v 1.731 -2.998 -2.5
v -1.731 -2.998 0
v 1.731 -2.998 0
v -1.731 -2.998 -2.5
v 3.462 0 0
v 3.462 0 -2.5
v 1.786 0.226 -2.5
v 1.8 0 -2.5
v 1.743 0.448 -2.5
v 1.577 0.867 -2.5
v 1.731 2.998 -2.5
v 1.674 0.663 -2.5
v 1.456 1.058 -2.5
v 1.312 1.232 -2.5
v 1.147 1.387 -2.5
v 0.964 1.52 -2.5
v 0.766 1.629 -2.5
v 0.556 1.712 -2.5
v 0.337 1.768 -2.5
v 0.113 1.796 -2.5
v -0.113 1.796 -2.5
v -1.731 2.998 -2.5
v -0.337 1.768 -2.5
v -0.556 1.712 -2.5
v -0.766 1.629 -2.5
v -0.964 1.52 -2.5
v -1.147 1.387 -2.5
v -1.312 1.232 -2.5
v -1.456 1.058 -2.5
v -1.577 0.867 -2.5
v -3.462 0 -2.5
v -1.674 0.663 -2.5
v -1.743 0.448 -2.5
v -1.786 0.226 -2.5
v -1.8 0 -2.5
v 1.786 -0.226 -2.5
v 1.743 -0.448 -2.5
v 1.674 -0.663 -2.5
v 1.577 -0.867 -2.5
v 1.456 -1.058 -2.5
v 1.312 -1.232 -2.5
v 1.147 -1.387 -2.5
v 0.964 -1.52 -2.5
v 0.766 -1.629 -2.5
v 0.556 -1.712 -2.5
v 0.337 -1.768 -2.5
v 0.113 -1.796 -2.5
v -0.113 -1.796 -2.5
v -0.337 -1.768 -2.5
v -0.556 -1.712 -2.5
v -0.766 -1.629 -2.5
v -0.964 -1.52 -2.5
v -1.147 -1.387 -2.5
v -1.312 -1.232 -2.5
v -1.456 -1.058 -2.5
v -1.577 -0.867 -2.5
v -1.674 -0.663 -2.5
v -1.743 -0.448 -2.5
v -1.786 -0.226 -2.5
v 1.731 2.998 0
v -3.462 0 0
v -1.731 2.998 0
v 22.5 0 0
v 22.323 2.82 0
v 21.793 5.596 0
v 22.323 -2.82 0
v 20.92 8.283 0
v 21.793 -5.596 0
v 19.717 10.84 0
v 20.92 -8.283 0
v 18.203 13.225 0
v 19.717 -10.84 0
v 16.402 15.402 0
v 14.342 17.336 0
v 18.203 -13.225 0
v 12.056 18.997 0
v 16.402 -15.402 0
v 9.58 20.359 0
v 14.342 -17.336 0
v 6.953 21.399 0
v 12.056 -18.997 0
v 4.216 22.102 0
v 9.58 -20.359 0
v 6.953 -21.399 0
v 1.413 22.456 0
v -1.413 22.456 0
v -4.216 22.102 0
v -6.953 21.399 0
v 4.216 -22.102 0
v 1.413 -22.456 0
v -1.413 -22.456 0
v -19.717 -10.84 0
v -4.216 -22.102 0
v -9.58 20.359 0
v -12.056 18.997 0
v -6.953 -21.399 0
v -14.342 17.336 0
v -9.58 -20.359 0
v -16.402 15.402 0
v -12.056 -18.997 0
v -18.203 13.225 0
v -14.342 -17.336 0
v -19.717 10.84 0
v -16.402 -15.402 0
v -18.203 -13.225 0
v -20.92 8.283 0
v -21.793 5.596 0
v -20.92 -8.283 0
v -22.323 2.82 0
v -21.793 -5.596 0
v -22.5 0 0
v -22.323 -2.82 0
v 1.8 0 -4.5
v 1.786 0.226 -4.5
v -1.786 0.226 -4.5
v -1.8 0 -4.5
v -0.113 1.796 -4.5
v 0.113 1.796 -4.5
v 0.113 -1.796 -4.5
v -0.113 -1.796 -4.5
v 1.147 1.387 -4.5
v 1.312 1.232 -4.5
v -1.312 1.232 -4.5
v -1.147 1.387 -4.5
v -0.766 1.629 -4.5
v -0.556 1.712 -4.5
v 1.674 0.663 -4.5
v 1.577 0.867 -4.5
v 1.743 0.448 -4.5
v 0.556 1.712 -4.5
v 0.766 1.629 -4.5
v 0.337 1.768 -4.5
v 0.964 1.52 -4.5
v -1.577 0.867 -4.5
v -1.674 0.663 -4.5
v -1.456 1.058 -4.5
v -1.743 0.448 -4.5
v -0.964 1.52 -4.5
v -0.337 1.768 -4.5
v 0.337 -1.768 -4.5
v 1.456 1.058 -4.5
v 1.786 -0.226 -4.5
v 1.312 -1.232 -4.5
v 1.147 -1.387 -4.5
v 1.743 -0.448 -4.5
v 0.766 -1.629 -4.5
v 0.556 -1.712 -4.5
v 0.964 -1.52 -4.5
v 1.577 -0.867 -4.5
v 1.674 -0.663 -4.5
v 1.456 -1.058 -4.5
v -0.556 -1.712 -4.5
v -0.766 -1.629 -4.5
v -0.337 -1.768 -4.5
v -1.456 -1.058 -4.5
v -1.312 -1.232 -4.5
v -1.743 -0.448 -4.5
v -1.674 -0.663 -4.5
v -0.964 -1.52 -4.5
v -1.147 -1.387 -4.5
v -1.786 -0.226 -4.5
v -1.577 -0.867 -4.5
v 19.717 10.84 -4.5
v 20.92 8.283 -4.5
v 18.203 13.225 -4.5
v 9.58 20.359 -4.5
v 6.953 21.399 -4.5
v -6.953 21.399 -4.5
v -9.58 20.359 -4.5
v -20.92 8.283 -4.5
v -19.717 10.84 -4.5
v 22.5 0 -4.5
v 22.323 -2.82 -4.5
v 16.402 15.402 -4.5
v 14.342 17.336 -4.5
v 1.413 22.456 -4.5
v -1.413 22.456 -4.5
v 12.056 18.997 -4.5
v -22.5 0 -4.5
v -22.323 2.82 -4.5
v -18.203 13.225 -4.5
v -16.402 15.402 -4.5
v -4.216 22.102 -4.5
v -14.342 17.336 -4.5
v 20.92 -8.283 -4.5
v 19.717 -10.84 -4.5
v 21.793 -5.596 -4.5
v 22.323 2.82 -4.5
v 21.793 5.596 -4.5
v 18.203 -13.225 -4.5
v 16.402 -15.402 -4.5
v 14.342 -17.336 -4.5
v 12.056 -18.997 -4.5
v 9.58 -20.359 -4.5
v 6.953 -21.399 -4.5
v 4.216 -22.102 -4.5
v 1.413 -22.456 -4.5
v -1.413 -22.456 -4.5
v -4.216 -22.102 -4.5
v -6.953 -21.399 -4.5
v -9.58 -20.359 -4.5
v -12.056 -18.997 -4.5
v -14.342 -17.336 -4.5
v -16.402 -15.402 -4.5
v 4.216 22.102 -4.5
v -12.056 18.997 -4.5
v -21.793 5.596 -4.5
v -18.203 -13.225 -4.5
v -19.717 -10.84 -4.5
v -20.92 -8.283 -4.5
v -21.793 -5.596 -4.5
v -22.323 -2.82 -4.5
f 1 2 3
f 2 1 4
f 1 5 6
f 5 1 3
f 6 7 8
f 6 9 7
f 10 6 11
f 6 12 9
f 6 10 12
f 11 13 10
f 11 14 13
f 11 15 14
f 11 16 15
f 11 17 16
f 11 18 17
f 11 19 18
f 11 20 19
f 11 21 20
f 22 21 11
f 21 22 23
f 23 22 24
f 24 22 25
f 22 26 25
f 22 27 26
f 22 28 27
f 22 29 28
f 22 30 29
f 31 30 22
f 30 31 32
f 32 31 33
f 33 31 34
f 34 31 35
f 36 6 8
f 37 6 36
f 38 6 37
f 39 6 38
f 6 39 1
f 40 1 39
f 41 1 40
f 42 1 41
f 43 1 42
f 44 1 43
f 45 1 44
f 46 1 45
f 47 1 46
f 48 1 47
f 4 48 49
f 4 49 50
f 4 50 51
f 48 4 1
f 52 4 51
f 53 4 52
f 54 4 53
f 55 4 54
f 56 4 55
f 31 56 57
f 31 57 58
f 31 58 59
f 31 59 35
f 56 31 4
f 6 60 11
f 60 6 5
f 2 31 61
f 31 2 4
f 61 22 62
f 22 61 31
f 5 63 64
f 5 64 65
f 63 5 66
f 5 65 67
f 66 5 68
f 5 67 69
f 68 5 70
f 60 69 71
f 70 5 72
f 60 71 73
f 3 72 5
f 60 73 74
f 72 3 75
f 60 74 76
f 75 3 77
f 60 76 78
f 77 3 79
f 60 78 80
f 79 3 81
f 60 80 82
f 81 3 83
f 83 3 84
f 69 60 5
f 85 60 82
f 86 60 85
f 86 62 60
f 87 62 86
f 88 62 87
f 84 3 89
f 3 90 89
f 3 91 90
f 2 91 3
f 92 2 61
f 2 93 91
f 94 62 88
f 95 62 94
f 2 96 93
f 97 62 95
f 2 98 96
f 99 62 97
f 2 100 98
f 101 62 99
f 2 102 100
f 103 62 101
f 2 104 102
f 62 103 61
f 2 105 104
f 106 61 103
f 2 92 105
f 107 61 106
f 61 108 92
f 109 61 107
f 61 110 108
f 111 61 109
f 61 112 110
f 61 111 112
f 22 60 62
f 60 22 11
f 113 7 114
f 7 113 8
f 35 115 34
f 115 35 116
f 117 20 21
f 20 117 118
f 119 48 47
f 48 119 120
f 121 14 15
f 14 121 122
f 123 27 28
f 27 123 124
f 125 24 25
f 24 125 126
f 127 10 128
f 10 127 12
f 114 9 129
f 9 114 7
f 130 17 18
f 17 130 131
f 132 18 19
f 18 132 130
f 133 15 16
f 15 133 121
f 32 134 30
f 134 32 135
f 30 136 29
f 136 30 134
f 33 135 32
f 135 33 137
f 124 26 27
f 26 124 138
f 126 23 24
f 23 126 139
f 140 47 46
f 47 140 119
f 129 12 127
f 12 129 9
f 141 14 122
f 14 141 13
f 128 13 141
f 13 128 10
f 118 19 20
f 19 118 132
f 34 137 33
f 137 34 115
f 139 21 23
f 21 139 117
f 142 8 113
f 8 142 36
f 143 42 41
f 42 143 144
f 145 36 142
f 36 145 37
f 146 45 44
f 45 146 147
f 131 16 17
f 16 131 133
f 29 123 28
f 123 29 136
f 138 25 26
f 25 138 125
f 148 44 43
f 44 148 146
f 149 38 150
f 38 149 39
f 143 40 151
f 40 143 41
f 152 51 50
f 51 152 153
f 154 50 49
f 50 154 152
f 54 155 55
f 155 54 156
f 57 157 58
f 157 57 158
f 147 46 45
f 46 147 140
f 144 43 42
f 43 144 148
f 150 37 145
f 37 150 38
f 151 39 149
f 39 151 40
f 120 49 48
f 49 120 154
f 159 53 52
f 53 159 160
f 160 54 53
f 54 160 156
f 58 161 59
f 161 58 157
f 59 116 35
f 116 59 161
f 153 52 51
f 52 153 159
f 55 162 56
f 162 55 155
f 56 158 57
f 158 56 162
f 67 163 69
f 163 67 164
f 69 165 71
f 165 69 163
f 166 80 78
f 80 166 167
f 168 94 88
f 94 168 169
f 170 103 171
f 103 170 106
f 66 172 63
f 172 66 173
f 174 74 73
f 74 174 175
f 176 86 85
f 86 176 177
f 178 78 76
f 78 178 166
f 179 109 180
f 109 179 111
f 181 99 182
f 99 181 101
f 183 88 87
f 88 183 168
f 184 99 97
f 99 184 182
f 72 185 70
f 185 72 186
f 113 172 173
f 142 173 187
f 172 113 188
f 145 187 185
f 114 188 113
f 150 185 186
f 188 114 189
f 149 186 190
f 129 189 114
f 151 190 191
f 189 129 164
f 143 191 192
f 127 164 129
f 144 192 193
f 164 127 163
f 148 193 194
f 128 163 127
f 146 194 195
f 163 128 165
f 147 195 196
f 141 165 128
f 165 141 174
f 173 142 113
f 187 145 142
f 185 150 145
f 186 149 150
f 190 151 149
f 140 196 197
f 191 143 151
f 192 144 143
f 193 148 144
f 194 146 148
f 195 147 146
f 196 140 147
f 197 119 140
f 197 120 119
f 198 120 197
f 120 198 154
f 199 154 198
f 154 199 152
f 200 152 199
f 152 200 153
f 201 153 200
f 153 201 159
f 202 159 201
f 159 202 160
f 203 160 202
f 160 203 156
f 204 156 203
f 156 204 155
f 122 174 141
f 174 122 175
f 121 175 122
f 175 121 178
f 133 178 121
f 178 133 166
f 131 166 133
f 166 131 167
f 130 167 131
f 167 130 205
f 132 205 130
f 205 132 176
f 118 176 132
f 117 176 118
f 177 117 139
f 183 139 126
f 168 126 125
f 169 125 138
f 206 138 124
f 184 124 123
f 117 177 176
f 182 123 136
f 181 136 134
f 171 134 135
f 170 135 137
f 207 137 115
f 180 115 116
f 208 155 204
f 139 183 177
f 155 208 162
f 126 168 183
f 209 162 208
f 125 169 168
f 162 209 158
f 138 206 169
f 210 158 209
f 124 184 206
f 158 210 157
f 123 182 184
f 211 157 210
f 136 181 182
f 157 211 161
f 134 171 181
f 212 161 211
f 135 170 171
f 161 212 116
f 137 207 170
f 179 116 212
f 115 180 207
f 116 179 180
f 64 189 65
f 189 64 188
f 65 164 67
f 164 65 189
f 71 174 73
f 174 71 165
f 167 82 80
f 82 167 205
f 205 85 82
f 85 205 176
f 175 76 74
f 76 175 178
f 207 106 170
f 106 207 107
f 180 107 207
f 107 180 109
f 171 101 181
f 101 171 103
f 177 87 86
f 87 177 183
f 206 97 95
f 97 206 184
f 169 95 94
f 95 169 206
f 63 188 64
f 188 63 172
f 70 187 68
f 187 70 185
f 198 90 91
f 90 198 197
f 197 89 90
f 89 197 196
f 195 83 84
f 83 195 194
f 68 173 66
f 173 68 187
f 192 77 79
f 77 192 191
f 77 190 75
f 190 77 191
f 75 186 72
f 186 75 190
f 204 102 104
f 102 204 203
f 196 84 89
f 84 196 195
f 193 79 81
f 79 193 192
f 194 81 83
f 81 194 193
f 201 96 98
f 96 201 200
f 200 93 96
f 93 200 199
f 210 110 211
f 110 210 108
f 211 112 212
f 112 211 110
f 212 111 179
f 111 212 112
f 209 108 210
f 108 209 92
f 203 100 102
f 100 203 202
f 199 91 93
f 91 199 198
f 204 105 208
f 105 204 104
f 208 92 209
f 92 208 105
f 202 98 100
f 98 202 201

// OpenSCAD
$fn = 50;


difference() {
	union() {
		translate(v = [0, 0, -4.5000000000]) {
			cylinder(h = 4.5000000000, r = 22.5000000000);
		}
	}
	union() {
		translate(v = [0, 0, 0]) {
			rotate(a = [0, 0, 0]) {
				difference() {
					union() {
						translate(v = [0, 0, -2.5000000000]) {
							linear_extrude(height = 2.5000000000) {
								polygon(points = [[3.4620000000, 0.0000000000], [1.7310000000, 2.9981799479], [-1.7310000000, 2.9981799479], [-3.4620000000, 0.0000000000], [-1.7310000000, -2.9981799479], [1.7310000000, -2.9981799479]]);
							}
						}
					}
					union();
				}
			}
		}
		#translate(v = [0, 0, -100.0000000000]) {
			cylinder(h = 200, r = 1.8000000000);
		}
	}
}
